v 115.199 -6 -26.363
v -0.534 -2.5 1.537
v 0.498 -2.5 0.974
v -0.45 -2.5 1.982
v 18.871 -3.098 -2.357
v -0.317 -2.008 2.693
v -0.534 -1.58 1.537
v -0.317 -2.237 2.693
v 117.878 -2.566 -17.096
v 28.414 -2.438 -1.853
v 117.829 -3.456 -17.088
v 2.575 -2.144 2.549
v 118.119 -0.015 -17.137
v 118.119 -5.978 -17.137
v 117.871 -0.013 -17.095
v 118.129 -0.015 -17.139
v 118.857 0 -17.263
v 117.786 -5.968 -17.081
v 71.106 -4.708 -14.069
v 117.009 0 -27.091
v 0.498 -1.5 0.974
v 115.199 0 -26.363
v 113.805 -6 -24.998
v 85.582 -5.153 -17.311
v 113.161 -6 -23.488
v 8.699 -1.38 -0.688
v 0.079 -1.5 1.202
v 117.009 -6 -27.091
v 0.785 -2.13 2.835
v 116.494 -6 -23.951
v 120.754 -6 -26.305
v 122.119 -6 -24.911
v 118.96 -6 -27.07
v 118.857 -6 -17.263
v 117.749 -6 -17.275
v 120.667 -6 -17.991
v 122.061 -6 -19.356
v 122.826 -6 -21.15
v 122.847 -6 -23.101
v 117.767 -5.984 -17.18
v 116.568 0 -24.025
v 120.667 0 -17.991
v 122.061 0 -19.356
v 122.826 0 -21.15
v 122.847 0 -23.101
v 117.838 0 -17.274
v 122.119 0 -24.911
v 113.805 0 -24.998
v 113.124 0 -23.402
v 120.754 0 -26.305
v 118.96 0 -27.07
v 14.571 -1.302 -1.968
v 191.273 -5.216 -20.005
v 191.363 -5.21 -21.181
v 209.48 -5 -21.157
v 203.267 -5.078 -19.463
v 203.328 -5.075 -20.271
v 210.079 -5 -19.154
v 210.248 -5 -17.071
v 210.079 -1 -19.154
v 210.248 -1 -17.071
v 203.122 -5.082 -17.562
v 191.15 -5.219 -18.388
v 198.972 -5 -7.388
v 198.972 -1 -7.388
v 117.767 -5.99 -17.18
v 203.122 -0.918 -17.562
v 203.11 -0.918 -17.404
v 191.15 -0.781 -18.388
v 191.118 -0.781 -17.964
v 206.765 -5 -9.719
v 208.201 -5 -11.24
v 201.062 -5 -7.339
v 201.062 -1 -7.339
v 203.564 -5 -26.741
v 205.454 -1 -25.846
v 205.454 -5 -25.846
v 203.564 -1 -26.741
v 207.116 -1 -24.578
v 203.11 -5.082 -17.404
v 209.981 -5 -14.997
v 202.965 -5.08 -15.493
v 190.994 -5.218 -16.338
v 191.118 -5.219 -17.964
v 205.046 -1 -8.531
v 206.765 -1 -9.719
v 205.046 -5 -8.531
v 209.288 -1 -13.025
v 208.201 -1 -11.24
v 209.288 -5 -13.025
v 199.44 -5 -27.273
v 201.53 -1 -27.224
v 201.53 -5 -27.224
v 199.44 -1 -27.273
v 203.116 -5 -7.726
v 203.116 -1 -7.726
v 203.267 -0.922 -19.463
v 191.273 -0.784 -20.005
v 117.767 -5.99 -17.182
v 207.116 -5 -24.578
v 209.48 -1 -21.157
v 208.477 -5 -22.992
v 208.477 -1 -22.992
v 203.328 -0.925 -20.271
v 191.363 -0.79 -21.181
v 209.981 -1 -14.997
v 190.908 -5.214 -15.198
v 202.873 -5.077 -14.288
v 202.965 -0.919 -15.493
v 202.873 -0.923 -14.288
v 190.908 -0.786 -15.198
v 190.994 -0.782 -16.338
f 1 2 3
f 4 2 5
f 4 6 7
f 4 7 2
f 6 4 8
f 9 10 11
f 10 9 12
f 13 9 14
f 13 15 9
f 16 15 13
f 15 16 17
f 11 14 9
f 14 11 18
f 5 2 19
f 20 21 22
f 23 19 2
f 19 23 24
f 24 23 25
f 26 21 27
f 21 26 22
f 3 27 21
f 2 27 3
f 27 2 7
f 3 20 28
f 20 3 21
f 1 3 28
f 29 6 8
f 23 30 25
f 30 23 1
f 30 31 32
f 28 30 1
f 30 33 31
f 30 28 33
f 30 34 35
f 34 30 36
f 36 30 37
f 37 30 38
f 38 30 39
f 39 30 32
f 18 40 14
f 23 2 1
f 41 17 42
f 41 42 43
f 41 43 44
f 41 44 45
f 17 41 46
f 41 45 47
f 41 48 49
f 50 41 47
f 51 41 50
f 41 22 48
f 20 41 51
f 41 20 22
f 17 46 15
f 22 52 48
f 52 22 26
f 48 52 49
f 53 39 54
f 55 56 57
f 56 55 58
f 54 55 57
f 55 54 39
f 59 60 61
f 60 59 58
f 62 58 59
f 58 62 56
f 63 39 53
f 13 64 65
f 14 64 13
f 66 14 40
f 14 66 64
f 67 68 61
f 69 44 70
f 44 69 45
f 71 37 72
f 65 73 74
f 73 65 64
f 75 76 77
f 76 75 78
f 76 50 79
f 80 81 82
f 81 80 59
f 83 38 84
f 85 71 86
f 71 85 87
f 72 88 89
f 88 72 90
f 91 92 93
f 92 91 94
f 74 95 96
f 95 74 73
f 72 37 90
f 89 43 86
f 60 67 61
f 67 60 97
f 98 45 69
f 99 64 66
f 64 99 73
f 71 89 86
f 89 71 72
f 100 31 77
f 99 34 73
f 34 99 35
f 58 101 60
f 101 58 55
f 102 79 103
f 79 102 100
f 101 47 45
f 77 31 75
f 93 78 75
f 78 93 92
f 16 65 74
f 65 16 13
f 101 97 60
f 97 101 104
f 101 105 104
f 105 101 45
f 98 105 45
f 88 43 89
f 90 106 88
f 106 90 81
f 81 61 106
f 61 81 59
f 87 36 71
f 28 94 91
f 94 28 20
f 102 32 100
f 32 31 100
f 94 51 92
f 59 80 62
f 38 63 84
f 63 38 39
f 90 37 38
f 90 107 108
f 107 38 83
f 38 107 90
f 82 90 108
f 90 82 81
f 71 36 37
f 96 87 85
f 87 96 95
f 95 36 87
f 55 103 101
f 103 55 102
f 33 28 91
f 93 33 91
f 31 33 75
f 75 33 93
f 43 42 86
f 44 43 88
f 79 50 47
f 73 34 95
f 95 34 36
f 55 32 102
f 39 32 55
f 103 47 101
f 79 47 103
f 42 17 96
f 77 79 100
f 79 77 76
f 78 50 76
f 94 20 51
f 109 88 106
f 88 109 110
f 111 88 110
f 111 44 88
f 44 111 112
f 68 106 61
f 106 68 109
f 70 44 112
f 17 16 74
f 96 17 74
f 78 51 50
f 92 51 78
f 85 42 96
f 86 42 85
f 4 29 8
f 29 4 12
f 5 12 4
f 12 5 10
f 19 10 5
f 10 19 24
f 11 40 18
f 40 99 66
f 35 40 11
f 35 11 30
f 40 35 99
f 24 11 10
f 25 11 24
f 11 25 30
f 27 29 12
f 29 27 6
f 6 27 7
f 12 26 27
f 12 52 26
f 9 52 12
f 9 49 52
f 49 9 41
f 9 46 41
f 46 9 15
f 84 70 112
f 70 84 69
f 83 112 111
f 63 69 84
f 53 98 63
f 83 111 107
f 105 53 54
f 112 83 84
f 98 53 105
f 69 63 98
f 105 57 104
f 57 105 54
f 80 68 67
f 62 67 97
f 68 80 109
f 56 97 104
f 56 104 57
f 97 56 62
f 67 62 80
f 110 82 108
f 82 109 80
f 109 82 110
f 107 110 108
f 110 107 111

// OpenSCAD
// file: standard.scad
//Standard library of useful constants and some utility functions.
//Alex English - ProtoParadigm LLC
//Published under the CC BY-SA 4.0 license

IN = 25.4;
PI = 3.14159265359;
PHI = 1.61803398875;
E = 2.71828;
ROOT2 = 1.41421;
ROOT3 = 1.73205;
HEX = 2/ROOT3; //proportion of the radius of a circle inscribed in a hexagon with that of a circle that inscribes a hexagon (diameter or radius of points vs flats on a hexagon)



// Equal divisions of 360 into sections, mainly for use in for loops to iterate a rotation in even divisions. Latin and Greek prefixes both defined so either can be used.
d_bi = [0, 180];
d_duo = d_bi;
d_tri = [0, 120, 240];
d_quad = [0, 90, 180, 270];
d_tetra = d_quad;
d_quint = [0, 72, 144, 216, 288];
d_penta = d_quint;
d_sex = [0, 60, 120, 180, 240, 300];
d_hex = d_sex;
d_sept = [0, 360/7, 360/7*2, 360/7*3, 360/7*4, 360/7*5, 360/7*6]; //expressed as fractions because the numbers are messy
d_hept = d_sept;
d_oct = [0, 45, 90, 135, 180, 225, 270, 315];
d_non = [0, 40, 80, 120, 160, 200, 240, 280, 320];
d_ennea = d_non;
d_dec = [0, 36, 72, 108, 144, 180, 216, 252, 288, 324];
//11 omitted
d_dodec = [0, 30, 60, 90, 120, 150, 180, 210, 240, 270, 300, 330];



//chains multiple child elements together with discreet hull operations, useful for complex and organic(ish) geometries - concept and implementation originally from Whosa Whatsis on G+ (as far as I'm aware)
module chain_hull() for (i = [0 : $children - 2]) hull() for(j = [i, i+1]) children(j);



//makes a hexagonal projection using the dimension of the diameter on flats of a hexagon; particularly useful for making the cutouts for captive nuts
module hex_rod(d, h) cylinder(d=d*HEX, h=h, $fn=6);



//makes a geometry that can be subtracted from a part to make a hole with the countersink needed for 80/20 t-slot bolts
module tslot_hole()
{
	translate([0, 0, -1]) cylinder(d=IN/4+1, h=50, $fn=16); //through-hole
	translate([0, 0, 3/16*IN+1]) cylinder(d=IN/2, h=50, $fn=24); //countersink
}



//makes a nub of the desired length to go on the bottom of a part to engage with t-slot to keep a part from rotating - this makes it possible for a part to be relatively secure with a single bolt mounting it. It should be shallow enough to not interfere with a t-slot nut
module tslot_nub(l)
{
	translate([0, -6.4/2, -2]) cube([l, 6.4, 2.1]);
}



//Update: 4/1/16 - Additions below

//translate child elements down 1 unit in the z-axis - this is a really common operation I use to avoid clipping issues that happen with coincident faces - typing down1() is faster than typing translate([0, 0, -1])
module down1() translate([0, 0, -1]) children();




//boolean xor module - credit goes to reddit user roman_fyseek in this post: https://www.reddit.com/r/openscad/comments/4cpos8...
module xor(){
    difference(){
        union(){
            children(0);
            children(1);
        };
        intersection(){
            children(0);
            children(1);
        }
    }
}
// main file
include <standard.scad>

rotate([90,10.65,0]) difference() {
    // Overall claw shape
    chain_hull(){
        translate([0,2,1.5]) cylinder(d=2,h=1);
        translate([120,0,0]) cylinder(d=10,h=6);
        translate([200,20,1]) cylinder(d=20,h=4);
    }
    
    // Left bevel
    rotate([-20,-1,0]) translate([59,0,8]) scale([120,10,10]) cube(1,1,1, center=true);
    
    // Right bevel
    rotate([20,.15,0]) translate([59,3,-4]) scale([120,10,10]) cube(1,1,1, center=true);
    
    // Shaft hole
    translate([197,19,0]) rotate([90,0,15]) scale([12,25,6]) cube(1,1,1, center=true);       
}
